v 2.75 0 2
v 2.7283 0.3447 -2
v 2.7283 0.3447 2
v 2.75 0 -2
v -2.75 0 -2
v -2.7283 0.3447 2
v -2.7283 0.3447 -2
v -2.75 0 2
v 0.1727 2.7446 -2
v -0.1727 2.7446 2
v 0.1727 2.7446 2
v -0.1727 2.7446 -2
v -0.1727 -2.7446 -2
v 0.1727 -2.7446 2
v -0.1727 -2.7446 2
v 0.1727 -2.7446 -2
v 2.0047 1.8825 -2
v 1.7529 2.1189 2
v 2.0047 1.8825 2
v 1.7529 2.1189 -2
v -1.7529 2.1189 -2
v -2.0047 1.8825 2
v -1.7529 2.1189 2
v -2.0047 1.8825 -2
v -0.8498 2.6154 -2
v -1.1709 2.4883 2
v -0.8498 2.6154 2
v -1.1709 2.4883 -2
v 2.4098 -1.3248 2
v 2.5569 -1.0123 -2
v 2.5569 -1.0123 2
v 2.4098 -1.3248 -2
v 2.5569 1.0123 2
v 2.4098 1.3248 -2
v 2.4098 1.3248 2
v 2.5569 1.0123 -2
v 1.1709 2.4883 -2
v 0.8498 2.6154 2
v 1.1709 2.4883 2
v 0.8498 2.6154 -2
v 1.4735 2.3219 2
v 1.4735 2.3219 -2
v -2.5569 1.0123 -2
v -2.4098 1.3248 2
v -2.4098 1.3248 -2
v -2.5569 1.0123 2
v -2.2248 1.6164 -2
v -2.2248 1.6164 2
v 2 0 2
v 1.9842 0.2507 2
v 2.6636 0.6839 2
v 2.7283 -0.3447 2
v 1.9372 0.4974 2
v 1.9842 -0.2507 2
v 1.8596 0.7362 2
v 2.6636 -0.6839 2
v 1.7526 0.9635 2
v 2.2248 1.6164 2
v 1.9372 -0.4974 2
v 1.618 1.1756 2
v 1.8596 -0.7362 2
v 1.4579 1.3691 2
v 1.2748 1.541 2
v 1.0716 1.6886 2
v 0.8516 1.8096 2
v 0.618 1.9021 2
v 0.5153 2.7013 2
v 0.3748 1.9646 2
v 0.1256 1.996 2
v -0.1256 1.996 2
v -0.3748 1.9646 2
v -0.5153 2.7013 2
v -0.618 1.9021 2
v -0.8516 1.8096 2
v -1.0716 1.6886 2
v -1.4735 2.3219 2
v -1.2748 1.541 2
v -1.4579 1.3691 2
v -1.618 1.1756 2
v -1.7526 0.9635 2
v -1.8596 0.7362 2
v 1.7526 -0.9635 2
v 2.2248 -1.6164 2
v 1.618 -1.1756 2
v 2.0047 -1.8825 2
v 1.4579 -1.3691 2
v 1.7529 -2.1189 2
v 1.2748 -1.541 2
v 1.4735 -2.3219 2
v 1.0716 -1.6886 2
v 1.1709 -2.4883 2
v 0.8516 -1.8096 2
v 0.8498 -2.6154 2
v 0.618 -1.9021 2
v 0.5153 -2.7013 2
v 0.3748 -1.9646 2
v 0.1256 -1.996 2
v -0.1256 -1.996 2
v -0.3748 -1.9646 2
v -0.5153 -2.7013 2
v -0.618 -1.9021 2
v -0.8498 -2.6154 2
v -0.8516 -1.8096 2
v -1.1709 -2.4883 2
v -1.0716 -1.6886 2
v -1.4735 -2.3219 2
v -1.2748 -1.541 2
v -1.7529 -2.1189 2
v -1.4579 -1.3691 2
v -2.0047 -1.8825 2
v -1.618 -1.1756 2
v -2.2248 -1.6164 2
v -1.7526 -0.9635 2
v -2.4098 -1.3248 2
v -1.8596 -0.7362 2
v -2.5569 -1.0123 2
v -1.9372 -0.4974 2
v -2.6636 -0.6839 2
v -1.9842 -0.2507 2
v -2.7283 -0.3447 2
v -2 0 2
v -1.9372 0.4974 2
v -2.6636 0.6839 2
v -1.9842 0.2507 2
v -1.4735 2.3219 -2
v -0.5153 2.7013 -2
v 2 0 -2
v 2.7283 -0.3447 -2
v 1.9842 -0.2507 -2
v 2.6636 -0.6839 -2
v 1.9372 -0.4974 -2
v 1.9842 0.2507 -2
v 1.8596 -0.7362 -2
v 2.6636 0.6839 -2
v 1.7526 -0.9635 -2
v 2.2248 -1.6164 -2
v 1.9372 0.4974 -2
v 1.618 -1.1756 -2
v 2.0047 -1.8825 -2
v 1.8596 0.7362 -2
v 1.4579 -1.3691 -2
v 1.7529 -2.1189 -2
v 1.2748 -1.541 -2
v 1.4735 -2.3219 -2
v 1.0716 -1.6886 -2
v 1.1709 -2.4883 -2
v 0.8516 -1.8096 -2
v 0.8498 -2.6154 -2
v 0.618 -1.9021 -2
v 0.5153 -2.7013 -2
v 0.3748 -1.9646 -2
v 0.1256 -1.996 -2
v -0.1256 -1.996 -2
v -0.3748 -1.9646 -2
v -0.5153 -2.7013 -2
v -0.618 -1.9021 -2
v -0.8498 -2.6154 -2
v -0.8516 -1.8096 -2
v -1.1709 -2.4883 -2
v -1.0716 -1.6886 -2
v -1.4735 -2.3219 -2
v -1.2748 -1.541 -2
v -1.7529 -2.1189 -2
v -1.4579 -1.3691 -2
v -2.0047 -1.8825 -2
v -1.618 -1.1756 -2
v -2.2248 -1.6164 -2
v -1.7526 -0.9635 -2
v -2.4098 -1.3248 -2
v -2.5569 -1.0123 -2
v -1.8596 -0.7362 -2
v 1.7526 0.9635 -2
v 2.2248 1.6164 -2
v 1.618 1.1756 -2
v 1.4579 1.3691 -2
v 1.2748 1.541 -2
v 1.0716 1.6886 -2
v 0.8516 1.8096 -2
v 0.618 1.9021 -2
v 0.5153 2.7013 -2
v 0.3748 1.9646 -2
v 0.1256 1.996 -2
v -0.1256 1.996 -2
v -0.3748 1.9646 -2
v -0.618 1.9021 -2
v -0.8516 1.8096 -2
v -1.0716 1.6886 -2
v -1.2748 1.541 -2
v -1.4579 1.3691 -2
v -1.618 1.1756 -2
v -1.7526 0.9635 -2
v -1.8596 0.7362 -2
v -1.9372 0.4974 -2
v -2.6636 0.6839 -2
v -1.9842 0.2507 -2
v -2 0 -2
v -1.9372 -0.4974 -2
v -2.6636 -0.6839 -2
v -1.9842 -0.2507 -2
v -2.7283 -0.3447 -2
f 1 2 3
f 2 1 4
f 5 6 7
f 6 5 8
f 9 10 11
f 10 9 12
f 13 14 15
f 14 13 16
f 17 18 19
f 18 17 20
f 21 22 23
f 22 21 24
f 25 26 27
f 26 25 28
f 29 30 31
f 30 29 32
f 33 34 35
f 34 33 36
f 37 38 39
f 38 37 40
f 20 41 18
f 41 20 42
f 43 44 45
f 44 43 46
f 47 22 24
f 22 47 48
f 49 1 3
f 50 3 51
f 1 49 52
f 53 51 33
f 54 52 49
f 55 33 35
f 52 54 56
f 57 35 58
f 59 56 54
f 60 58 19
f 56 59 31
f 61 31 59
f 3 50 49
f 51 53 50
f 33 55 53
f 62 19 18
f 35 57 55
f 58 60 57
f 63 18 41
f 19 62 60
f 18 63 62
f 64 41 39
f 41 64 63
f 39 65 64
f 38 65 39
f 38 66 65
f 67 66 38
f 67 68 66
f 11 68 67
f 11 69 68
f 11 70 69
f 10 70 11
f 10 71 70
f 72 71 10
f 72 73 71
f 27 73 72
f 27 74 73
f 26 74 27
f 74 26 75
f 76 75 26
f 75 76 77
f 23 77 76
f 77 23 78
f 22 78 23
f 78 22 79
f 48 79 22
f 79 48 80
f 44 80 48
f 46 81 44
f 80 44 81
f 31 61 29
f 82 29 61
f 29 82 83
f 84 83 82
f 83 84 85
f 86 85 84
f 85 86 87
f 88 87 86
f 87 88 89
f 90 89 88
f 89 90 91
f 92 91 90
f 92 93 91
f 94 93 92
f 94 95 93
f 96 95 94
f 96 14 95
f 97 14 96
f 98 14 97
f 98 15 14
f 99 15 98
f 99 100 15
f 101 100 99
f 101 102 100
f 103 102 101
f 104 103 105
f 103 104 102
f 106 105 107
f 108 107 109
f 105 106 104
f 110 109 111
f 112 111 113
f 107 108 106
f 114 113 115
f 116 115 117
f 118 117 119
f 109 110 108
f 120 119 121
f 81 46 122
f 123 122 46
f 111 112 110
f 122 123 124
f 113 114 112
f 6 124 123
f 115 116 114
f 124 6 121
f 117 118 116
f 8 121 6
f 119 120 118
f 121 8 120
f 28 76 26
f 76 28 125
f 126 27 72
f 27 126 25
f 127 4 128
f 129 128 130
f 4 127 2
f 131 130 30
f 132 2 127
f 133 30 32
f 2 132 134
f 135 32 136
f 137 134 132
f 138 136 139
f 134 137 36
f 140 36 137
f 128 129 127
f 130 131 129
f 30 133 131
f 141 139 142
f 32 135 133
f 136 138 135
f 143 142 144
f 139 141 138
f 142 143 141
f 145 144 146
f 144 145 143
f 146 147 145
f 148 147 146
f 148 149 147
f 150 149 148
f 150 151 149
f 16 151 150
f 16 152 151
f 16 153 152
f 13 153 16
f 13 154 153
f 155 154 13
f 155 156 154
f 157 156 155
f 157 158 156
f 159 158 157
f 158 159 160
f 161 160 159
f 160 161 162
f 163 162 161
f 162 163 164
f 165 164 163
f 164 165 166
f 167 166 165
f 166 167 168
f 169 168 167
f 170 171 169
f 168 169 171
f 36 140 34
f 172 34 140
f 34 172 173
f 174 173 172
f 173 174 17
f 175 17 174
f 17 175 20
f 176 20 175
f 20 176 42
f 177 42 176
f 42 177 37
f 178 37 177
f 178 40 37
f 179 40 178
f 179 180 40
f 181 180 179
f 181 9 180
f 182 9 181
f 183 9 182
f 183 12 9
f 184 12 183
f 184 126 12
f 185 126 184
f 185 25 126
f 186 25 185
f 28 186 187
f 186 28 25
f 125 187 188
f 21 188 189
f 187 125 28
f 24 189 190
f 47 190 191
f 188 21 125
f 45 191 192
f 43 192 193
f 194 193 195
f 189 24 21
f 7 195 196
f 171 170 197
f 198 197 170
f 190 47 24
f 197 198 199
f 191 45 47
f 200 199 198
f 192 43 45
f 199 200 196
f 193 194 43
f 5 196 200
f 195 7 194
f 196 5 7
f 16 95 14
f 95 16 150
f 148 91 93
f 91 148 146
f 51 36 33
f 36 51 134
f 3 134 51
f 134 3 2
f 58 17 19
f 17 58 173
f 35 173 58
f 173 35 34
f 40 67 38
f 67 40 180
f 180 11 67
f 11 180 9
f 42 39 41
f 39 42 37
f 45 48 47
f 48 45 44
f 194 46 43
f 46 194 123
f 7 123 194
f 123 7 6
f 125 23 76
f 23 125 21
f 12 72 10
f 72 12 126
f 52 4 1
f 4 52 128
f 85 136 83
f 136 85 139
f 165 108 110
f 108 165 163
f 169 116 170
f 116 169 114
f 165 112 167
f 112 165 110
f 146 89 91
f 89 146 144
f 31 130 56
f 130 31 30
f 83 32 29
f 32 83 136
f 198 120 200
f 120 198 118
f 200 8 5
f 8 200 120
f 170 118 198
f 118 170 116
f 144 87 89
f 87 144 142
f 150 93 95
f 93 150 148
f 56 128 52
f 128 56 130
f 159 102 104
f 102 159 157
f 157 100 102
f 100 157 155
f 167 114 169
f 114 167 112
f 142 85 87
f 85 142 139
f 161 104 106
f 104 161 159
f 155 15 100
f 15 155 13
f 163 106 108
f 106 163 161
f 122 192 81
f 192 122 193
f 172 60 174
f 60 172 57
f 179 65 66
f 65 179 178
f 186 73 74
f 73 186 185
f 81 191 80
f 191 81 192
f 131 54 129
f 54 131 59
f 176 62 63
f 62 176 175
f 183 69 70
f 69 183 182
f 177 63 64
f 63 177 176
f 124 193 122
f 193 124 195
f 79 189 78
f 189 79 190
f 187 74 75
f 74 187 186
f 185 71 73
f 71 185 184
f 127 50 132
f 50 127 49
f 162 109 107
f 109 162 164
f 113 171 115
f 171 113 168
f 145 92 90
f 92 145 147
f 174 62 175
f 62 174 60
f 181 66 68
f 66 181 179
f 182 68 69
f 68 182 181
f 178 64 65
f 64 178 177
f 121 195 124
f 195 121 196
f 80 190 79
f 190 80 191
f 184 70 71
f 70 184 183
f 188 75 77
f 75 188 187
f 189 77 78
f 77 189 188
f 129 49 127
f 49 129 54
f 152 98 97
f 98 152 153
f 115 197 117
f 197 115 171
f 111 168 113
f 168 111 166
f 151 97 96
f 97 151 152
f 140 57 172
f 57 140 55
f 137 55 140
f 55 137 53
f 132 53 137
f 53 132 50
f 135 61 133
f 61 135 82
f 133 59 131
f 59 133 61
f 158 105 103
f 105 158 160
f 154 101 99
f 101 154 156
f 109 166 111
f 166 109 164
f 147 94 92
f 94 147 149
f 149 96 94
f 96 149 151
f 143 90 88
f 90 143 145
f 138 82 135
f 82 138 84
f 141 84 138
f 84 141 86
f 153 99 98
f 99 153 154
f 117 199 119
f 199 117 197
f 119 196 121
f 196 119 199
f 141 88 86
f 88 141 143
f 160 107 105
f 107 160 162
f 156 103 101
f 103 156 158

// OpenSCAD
$fn = 50;


difference() {
	union() {
		translate(v = [0, 0, -2.0000000000]) {
			cylinder(h = 4, r = 2.7500000000);
		}
	}
	union() {
		translate(v = [0, 0, -100.0000000000]) {
			cylinder(h = 200, r = 2.0000000000);
		}
	}
}
